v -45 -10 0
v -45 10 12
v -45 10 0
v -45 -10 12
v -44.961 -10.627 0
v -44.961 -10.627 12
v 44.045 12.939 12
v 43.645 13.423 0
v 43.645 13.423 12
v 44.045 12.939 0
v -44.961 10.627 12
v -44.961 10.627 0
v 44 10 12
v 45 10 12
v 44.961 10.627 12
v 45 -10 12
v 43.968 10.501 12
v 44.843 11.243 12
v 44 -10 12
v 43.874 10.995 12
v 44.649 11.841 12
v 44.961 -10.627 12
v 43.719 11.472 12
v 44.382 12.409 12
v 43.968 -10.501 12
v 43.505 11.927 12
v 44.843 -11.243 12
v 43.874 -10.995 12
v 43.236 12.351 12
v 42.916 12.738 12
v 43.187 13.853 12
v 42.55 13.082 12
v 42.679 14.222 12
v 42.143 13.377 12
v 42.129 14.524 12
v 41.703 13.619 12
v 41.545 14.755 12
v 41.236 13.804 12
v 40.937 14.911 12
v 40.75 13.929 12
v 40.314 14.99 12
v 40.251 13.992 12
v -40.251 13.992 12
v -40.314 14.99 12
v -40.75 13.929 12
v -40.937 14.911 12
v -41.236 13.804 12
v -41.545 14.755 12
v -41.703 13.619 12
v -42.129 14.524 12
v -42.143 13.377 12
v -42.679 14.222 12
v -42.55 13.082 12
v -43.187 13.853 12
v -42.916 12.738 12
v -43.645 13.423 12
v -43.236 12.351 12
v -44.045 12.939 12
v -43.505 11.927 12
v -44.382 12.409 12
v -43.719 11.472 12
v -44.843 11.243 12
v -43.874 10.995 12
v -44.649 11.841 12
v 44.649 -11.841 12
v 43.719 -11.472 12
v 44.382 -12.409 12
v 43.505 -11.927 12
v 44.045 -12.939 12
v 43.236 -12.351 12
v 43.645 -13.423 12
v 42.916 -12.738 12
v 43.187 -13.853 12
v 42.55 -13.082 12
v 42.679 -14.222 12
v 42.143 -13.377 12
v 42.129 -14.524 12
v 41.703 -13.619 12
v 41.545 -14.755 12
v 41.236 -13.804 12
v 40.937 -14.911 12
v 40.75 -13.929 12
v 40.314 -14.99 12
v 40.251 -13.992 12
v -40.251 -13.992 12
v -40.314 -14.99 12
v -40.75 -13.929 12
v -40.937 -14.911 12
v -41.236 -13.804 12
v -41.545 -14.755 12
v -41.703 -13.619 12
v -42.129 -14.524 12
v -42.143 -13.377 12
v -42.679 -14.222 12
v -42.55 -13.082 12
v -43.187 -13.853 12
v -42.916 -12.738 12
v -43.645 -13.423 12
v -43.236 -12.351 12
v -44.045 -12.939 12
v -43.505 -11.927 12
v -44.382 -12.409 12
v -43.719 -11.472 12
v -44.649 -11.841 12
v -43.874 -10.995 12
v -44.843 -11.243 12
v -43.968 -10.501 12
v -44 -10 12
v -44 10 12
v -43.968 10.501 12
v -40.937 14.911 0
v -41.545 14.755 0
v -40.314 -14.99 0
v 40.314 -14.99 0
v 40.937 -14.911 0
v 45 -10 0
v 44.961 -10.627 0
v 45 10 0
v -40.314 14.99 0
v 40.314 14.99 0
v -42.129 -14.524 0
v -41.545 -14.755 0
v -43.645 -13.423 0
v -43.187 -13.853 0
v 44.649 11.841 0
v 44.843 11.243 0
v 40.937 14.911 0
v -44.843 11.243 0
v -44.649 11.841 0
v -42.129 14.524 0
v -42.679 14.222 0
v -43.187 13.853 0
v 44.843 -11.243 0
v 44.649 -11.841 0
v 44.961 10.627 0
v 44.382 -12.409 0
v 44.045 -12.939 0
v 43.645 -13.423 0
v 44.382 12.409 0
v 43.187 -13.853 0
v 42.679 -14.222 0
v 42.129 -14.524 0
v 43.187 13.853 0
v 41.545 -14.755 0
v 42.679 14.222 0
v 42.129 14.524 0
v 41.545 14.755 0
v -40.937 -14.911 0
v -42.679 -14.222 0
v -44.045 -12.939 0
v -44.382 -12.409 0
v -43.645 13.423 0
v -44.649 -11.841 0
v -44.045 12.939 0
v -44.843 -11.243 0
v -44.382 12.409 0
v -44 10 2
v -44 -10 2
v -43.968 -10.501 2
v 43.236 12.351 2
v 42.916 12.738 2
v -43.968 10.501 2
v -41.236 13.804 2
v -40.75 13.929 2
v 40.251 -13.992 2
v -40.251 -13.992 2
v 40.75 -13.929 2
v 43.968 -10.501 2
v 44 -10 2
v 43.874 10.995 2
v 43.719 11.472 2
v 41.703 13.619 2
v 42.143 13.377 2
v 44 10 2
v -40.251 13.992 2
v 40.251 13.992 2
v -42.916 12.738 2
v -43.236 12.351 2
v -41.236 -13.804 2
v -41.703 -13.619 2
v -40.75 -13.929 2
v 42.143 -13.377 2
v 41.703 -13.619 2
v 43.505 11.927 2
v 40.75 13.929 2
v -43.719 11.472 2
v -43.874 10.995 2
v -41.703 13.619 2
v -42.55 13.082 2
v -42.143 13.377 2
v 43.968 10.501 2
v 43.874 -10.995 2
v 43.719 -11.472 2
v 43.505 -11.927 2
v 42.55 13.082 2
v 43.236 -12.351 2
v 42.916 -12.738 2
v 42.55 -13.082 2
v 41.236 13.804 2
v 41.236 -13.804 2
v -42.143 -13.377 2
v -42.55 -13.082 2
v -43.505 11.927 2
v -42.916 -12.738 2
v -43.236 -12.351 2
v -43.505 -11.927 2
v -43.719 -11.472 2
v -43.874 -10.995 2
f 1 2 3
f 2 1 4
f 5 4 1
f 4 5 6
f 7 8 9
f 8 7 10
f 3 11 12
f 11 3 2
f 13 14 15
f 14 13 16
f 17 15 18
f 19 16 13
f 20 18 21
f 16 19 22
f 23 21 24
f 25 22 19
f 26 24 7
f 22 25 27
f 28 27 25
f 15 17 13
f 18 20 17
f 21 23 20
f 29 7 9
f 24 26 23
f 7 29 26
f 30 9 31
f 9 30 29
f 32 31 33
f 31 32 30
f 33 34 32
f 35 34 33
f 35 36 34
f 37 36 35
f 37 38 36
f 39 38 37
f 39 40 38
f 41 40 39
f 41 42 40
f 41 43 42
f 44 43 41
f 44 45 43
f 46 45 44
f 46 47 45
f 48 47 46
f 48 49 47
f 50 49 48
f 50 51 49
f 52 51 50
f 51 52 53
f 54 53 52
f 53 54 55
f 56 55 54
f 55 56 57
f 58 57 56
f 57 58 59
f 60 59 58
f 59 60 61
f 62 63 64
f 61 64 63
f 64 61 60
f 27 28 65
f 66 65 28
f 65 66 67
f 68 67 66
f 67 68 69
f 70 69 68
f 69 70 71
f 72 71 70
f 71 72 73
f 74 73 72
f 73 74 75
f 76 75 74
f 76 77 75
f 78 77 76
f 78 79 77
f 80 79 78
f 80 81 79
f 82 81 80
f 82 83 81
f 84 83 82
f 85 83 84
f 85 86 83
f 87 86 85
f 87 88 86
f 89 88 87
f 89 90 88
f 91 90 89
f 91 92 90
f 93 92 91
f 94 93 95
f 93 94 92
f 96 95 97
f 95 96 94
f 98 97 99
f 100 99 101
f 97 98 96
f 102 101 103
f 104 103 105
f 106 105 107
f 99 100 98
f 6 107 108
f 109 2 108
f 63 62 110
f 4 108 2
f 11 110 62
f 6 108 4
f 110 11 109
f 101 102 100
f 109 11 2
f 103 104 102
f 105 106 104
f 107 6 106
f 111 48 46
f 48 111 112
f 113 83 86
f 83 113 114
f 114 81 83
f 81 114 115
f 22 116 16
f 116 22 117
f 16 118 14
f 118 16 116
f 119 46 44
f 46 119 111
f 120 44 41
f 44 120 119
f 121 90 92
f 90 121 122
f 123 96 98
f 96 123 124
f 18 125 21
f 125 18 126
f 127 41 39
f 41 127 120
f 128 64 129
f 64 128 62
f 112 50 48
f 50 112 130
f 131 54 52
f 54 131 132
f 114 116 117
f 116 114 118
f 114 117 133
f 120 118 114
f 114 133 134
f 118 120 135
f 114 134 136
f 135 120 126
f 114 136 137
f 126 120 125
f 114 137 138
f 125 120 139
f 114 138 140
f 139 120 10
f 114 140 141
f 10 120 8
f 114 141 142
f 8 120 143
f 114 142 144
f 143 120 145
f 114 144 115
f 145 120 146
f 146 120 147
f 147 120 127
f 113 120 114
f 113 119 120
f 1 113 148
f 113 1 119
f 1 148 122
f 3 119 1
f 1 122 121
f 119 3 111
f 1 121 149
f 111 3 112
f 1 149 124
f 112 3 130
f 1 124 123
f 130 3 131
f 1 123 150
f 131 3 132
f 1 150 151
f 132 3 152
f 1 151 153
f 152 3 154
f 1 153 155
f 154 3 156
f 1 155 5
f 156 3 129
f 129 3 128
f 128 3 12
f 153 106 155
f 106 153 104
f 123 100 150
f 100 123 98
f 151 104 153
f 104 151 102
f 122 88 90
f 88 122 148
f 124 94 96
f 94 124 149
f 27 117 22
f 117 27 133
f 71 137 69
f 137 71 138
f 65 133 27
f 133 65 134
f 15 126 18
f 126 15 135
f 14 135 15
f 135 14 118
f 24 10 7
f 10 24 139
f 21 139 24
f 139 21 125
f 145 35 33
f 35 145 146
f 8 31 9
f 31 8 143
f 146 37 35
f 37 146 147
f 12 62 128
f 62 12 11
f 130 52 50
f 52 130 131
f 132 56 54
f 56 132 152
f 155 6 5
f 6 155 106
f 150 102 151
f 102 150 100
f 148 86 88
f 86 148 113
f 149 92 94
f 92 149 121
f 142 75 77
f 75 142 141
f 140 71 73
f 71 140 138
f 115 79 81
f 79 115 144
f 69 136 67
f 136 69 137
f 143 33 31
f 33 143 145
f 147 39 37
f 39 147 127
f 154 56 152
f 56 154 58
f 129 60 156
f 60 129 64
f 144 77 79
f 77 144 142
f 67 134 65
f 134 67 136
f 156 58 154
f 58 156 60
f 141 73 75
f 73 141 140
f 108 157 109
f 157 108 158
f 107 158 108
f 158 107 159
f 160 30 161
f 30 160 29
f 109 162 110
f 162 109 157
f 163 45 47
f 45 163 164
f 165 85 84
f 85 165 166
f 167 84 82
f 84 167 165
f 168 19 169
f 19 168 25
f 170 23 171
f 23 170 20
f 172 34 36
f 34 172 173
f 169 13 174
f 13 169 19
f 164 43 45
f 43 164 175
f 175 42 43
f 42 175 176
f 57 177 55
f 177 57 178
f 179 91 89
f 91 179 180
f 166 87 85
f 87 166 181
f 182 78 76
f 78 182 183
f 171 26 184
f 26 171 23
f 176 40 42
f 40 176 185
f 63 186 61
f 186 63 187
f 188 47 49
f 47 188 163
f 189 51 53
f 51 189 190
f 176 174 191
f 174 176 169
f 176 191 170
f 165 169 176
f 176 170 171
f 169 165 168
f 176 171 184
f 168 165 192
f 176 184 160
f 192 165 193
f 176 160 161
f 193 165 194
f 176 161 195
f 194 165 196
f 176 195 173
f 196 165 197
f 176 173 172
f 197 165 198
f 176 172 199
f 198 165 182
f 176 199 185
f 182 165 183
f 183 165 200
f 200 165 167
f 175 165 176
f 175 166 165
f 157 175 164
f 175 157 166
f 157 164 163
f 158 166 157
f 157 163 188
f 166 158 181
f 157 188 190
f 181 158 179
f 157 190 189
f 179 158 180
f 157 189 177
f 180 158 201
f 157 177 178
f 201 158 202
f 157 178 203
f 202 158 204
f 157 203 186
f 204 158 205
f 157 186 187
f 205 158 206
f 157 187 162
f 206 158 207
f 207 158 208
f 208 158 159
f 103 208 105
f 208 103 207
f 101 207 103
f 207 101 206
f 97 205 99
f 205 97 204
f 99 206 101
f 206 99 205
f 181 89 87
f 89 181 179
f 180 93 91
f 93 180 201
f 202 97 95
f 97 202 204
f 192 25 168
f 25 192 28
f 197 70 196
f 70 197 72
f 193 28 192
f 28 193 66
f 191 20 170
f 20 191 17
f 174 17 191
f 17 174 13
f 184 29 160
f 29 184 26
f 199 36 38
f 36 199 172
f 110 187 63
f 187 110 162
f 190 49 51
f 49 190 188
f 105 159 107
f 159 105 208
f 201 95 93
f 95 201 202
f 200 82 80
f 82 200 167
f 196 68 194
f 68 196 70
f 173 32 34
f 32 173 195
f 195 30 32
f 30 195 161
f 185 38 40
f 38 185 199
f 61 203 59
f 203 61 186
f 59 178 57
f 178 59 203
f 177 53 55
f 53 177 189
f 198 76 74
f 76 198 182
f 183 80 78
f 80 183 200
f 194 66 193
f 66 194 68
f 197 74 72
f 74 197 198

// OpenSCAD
$fn = 50;


difference() {
	union() {
		hull() {
			translate(v = [-40.0000000000, 10.0000000000, 0]) {
				cylinder(h = 12, r = 5);
			}
			translate(v = [40.0000000000, 10.0000000000, 0]) {
				cylinder(h = 12, r = 5);
			}
			translate(v = [-40.0000000000, -10.0000000000, 0]) {
				cylinder(h = 12, r = 5);
			}
			translate(v = [40.0000000000, -10.0000000000, 0]) {
				cylinder(h = 12, r = 5);
			}
		}
	}
	union() {
		translate(v = [0, 0, 2]) {
			#hull() {
				translate(v = [-40.0000000000, 10.0000000000, 0]) {
					cylinder(h = 10, r = 4);
				}
				translate(v = [40.0000000000, 10.0000000000, 0]) {
					cylinder(h = 10, r = 4);
				}
				translate(v = [-40.0000000000, -10.0000000000, 0]) {
					cylinder(h = 10, r = 4);
				}
				translate(v = [40.0000000000, -10.0000000000, 0]) {
					cylinder(h = 10, r = 4);
				}
			}
		}
	}
}
